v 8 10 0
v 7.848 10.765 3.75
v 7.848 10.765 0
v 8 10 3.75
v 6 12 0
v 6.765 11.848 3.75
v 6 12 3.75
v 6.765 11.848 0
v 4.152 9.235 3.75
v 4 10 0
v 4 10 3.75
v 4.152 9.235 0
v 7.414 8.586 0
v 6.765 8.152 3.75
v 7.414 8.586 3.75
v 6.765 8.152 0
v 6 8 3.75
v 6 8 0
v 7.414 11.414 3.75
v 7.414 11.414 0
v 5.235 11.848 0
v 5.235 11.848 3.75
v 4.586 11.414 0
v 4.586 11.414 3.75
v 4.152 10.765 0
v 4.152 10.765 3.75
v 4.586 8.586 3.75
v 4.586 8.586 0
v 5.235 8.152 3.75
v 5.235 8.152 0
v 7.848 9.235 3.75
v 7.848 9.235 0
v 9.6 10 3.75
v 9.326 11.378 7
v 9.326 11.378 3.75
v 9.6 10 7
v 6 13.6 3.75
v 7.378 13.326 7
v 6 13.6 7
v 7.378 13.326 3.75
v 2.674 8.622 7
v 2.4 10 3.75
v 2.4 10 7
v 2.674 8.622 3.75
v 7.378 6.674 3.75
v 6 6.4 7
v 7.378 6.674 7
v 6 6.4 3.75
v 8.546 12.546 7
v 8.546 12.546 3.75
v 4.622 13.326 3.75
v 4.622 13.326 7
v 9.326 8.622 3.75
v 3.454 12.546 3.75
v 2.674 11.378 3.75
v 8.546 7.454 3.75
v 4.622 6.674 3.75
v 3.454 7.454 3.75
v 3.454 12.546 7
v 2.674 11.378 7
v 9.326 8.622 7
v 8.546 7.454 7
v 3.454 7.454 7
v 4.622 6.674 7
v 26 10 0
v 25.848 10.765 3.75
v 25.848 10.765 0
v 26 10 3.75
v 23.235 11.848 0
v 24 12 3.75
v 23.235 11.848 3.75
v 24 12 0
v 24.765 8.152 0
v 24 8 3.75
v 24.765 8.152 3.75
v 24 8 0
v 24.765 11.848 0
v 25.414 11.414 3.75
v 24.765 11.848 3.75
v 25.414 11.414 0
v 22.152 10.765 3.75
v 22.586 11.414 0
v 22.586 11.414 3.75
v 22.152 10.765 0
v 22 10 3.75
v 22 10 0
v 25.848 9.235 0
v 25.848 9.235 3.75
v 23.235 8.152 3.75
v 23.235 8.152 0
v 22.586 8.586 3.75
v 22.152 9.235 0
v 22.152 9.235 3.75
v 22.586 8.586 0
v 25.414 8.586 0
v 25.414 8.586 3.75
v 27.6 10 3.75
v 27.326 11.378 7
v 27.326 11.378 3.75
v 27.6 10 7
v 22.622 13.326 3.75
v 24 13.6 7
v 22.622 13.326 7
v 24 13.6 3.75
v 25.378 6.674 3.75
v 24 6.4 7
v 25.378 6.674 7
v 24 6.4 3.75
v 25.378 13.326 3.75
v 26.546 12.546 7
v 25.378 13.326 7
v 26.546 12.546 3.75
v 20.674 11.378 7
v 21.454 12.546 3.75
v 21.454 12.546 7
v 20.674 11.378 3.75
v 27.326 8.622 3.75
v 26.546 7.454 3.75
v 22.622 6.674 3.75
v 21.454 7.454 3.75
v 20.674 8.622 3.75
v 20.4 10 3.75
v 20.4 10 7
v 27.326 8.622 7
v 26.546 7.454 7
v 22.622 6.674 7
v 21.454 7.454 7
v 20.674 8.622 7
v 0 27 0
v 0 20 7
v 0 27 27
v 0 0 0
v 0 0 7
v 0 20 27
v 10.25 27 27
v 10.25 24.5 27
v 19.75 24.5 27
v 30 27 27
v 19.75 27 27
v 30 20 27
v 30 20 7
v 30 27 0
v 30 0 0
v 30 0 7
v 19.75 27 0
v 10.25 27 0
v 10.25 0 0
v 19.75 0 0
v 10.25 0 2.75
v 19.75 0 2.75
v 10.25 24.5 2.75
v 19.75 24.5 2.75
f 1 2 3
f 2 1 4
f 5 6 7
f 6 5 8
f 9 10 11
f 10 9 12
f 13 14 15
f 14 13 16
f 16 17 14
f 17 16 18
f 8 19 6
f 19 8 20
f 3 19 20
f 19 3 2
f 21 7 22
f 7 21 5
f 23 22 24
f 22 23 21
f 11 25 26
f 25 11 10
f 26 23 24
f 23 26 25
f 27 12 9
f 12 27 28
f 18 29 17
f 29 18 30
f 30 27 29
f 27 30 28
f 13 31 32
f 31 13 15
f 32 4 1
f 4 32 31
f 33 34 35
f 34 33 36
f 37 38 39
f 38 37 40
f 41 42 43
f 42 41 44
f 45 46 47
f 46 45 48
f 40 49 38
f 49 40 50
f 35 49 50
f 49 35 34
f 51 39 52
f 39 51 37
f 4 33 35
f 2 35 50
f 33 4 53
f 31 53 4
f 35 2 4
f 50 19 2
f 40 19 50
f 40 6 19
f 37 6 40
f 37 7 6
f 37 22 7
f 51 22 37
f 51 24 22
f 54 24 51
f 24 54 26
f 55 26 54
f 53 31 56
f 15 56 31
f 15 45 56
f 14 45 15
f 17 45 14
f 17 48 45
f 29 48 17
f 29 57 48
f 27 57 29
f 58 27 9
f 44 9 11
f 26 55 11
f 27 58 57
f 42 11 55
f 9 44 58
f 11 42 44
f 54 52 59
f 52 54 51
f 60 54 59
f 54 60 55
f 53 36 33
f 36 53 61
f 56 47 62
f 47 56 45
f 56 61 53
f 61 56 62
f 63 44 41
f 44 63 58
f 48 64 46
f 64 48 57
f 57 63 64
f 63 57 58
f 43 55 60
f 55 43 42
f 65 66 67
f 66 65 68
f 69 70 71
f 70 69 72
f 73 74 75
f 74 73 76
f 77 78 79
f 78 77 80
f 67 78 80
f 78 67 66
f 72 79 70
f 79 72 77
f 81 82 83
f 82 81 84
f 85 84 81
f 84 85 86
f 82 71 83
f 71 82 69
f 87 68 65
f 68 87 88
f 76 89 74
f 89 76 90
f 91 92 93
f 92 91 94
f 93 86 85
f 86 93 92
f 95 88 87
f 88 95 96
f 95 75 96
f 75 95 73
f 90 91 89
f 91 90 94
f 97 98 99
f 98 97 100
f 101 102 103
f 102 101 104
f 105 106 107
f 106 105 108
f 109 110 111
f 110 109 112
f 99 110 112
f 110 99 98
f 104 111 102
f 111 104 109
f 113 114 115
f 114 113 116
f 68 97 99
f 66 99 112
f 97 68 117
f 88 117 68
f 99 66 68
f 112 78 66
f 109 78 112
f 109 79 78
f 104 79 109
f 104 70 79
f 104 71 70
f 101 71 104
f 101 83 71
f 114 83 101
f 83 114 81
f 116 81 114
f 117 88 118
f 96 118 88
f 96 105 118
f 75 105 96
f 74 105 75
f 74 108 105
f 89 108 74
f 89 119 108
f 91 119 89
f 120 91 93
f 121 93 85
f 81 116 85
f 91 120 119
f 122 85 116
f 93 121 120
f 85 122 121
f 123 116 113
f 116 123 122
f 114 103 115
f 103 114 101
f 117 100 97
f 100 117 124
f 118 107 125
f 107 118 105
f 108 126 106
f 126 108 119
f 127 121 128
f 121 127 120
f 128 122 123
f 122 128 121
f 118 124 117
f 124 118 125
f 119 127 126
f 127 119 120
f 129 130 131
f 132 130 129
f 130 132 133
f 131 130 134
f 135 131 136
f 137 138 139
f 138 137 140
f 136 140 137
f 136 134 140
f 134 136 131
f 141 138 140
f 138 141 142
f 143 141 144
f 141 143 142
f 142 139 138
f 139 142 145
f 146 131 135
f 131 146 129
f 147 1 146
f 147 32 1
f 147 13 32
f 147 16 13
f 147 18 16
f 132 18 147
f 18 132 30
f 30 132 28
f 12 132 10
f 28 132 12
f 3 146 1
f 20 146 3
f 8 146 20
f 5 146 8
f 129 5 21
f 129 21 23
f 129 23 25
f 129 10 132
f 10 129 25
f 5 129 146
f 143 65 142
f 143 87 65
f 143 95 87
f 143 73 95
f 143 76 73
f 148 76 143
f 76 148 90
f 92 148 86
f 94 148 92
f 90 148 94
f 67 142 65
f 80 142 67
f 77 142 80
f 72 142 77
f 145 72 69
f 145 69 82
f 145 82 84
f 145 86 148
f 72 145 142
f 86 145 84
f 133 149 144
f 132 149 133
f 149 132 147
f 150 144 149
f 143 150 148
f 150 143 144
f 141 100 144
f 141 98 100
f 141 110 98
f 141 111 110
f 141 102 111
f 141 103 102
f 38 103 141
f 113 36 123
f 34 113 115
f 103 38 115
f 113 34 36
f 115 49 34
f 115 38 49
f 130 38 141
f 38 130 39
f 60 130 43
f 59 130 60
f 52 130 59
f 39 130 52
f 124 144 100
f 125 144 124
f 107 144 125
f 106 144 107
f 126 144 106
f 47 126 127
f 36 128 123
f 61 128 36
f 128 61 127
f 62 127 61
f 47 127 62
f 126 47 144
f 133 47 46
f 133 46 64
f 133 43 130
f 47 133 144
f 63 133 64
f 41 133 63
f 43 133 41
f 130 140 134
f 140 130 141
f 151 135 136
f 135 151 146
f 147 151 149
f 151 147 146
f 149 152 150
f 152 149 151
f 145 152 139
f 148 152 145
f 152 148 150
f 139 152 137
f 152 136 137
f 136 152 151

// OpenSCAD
// Base is 49mm wide, 25mm deep
// Body is 39mm wide
// Tab is 16mm wide
// Locks are 6mm from back, 12mm from side, 10mm long

module screw (x, y)
{
  translate ([x, y, 0]) {
    cylinder (h=10, d=4.0, $fn=16, center=true);
  }
  translate ([x, y, 6]) {
    cylinder (h=4.5, d=7.2, $fn=16, center=true);
  }
}

translate ([0, 0, 0]) {
  difference () {
     // Floor
    cube ([30, 27, 27]);

    // Remove cube to create vertical
    translate ([0, 0, 7]) {
      cube ([30, 20, 27]);
    }
    
    // Tie-wrap
    translate ([10.25, 0, 0]) {
      cube ([9.5, 27, 2.75]);
    }
    translate ([10.25, 24.5, 0]) {
      cube ([9.5, 2.75, 30]);
    }
    /*
    translate ([15, 24.5, 2.5]) {
      rotate (a=90, v=[0,1,0]) {
        cylinder (h=9, d=4, $fn=16, center=true);
      }
    }
    */
    
    //  Screw holes & head recesses
    screw (6, 10);
    screw (24, 10);
  } 
}

  
